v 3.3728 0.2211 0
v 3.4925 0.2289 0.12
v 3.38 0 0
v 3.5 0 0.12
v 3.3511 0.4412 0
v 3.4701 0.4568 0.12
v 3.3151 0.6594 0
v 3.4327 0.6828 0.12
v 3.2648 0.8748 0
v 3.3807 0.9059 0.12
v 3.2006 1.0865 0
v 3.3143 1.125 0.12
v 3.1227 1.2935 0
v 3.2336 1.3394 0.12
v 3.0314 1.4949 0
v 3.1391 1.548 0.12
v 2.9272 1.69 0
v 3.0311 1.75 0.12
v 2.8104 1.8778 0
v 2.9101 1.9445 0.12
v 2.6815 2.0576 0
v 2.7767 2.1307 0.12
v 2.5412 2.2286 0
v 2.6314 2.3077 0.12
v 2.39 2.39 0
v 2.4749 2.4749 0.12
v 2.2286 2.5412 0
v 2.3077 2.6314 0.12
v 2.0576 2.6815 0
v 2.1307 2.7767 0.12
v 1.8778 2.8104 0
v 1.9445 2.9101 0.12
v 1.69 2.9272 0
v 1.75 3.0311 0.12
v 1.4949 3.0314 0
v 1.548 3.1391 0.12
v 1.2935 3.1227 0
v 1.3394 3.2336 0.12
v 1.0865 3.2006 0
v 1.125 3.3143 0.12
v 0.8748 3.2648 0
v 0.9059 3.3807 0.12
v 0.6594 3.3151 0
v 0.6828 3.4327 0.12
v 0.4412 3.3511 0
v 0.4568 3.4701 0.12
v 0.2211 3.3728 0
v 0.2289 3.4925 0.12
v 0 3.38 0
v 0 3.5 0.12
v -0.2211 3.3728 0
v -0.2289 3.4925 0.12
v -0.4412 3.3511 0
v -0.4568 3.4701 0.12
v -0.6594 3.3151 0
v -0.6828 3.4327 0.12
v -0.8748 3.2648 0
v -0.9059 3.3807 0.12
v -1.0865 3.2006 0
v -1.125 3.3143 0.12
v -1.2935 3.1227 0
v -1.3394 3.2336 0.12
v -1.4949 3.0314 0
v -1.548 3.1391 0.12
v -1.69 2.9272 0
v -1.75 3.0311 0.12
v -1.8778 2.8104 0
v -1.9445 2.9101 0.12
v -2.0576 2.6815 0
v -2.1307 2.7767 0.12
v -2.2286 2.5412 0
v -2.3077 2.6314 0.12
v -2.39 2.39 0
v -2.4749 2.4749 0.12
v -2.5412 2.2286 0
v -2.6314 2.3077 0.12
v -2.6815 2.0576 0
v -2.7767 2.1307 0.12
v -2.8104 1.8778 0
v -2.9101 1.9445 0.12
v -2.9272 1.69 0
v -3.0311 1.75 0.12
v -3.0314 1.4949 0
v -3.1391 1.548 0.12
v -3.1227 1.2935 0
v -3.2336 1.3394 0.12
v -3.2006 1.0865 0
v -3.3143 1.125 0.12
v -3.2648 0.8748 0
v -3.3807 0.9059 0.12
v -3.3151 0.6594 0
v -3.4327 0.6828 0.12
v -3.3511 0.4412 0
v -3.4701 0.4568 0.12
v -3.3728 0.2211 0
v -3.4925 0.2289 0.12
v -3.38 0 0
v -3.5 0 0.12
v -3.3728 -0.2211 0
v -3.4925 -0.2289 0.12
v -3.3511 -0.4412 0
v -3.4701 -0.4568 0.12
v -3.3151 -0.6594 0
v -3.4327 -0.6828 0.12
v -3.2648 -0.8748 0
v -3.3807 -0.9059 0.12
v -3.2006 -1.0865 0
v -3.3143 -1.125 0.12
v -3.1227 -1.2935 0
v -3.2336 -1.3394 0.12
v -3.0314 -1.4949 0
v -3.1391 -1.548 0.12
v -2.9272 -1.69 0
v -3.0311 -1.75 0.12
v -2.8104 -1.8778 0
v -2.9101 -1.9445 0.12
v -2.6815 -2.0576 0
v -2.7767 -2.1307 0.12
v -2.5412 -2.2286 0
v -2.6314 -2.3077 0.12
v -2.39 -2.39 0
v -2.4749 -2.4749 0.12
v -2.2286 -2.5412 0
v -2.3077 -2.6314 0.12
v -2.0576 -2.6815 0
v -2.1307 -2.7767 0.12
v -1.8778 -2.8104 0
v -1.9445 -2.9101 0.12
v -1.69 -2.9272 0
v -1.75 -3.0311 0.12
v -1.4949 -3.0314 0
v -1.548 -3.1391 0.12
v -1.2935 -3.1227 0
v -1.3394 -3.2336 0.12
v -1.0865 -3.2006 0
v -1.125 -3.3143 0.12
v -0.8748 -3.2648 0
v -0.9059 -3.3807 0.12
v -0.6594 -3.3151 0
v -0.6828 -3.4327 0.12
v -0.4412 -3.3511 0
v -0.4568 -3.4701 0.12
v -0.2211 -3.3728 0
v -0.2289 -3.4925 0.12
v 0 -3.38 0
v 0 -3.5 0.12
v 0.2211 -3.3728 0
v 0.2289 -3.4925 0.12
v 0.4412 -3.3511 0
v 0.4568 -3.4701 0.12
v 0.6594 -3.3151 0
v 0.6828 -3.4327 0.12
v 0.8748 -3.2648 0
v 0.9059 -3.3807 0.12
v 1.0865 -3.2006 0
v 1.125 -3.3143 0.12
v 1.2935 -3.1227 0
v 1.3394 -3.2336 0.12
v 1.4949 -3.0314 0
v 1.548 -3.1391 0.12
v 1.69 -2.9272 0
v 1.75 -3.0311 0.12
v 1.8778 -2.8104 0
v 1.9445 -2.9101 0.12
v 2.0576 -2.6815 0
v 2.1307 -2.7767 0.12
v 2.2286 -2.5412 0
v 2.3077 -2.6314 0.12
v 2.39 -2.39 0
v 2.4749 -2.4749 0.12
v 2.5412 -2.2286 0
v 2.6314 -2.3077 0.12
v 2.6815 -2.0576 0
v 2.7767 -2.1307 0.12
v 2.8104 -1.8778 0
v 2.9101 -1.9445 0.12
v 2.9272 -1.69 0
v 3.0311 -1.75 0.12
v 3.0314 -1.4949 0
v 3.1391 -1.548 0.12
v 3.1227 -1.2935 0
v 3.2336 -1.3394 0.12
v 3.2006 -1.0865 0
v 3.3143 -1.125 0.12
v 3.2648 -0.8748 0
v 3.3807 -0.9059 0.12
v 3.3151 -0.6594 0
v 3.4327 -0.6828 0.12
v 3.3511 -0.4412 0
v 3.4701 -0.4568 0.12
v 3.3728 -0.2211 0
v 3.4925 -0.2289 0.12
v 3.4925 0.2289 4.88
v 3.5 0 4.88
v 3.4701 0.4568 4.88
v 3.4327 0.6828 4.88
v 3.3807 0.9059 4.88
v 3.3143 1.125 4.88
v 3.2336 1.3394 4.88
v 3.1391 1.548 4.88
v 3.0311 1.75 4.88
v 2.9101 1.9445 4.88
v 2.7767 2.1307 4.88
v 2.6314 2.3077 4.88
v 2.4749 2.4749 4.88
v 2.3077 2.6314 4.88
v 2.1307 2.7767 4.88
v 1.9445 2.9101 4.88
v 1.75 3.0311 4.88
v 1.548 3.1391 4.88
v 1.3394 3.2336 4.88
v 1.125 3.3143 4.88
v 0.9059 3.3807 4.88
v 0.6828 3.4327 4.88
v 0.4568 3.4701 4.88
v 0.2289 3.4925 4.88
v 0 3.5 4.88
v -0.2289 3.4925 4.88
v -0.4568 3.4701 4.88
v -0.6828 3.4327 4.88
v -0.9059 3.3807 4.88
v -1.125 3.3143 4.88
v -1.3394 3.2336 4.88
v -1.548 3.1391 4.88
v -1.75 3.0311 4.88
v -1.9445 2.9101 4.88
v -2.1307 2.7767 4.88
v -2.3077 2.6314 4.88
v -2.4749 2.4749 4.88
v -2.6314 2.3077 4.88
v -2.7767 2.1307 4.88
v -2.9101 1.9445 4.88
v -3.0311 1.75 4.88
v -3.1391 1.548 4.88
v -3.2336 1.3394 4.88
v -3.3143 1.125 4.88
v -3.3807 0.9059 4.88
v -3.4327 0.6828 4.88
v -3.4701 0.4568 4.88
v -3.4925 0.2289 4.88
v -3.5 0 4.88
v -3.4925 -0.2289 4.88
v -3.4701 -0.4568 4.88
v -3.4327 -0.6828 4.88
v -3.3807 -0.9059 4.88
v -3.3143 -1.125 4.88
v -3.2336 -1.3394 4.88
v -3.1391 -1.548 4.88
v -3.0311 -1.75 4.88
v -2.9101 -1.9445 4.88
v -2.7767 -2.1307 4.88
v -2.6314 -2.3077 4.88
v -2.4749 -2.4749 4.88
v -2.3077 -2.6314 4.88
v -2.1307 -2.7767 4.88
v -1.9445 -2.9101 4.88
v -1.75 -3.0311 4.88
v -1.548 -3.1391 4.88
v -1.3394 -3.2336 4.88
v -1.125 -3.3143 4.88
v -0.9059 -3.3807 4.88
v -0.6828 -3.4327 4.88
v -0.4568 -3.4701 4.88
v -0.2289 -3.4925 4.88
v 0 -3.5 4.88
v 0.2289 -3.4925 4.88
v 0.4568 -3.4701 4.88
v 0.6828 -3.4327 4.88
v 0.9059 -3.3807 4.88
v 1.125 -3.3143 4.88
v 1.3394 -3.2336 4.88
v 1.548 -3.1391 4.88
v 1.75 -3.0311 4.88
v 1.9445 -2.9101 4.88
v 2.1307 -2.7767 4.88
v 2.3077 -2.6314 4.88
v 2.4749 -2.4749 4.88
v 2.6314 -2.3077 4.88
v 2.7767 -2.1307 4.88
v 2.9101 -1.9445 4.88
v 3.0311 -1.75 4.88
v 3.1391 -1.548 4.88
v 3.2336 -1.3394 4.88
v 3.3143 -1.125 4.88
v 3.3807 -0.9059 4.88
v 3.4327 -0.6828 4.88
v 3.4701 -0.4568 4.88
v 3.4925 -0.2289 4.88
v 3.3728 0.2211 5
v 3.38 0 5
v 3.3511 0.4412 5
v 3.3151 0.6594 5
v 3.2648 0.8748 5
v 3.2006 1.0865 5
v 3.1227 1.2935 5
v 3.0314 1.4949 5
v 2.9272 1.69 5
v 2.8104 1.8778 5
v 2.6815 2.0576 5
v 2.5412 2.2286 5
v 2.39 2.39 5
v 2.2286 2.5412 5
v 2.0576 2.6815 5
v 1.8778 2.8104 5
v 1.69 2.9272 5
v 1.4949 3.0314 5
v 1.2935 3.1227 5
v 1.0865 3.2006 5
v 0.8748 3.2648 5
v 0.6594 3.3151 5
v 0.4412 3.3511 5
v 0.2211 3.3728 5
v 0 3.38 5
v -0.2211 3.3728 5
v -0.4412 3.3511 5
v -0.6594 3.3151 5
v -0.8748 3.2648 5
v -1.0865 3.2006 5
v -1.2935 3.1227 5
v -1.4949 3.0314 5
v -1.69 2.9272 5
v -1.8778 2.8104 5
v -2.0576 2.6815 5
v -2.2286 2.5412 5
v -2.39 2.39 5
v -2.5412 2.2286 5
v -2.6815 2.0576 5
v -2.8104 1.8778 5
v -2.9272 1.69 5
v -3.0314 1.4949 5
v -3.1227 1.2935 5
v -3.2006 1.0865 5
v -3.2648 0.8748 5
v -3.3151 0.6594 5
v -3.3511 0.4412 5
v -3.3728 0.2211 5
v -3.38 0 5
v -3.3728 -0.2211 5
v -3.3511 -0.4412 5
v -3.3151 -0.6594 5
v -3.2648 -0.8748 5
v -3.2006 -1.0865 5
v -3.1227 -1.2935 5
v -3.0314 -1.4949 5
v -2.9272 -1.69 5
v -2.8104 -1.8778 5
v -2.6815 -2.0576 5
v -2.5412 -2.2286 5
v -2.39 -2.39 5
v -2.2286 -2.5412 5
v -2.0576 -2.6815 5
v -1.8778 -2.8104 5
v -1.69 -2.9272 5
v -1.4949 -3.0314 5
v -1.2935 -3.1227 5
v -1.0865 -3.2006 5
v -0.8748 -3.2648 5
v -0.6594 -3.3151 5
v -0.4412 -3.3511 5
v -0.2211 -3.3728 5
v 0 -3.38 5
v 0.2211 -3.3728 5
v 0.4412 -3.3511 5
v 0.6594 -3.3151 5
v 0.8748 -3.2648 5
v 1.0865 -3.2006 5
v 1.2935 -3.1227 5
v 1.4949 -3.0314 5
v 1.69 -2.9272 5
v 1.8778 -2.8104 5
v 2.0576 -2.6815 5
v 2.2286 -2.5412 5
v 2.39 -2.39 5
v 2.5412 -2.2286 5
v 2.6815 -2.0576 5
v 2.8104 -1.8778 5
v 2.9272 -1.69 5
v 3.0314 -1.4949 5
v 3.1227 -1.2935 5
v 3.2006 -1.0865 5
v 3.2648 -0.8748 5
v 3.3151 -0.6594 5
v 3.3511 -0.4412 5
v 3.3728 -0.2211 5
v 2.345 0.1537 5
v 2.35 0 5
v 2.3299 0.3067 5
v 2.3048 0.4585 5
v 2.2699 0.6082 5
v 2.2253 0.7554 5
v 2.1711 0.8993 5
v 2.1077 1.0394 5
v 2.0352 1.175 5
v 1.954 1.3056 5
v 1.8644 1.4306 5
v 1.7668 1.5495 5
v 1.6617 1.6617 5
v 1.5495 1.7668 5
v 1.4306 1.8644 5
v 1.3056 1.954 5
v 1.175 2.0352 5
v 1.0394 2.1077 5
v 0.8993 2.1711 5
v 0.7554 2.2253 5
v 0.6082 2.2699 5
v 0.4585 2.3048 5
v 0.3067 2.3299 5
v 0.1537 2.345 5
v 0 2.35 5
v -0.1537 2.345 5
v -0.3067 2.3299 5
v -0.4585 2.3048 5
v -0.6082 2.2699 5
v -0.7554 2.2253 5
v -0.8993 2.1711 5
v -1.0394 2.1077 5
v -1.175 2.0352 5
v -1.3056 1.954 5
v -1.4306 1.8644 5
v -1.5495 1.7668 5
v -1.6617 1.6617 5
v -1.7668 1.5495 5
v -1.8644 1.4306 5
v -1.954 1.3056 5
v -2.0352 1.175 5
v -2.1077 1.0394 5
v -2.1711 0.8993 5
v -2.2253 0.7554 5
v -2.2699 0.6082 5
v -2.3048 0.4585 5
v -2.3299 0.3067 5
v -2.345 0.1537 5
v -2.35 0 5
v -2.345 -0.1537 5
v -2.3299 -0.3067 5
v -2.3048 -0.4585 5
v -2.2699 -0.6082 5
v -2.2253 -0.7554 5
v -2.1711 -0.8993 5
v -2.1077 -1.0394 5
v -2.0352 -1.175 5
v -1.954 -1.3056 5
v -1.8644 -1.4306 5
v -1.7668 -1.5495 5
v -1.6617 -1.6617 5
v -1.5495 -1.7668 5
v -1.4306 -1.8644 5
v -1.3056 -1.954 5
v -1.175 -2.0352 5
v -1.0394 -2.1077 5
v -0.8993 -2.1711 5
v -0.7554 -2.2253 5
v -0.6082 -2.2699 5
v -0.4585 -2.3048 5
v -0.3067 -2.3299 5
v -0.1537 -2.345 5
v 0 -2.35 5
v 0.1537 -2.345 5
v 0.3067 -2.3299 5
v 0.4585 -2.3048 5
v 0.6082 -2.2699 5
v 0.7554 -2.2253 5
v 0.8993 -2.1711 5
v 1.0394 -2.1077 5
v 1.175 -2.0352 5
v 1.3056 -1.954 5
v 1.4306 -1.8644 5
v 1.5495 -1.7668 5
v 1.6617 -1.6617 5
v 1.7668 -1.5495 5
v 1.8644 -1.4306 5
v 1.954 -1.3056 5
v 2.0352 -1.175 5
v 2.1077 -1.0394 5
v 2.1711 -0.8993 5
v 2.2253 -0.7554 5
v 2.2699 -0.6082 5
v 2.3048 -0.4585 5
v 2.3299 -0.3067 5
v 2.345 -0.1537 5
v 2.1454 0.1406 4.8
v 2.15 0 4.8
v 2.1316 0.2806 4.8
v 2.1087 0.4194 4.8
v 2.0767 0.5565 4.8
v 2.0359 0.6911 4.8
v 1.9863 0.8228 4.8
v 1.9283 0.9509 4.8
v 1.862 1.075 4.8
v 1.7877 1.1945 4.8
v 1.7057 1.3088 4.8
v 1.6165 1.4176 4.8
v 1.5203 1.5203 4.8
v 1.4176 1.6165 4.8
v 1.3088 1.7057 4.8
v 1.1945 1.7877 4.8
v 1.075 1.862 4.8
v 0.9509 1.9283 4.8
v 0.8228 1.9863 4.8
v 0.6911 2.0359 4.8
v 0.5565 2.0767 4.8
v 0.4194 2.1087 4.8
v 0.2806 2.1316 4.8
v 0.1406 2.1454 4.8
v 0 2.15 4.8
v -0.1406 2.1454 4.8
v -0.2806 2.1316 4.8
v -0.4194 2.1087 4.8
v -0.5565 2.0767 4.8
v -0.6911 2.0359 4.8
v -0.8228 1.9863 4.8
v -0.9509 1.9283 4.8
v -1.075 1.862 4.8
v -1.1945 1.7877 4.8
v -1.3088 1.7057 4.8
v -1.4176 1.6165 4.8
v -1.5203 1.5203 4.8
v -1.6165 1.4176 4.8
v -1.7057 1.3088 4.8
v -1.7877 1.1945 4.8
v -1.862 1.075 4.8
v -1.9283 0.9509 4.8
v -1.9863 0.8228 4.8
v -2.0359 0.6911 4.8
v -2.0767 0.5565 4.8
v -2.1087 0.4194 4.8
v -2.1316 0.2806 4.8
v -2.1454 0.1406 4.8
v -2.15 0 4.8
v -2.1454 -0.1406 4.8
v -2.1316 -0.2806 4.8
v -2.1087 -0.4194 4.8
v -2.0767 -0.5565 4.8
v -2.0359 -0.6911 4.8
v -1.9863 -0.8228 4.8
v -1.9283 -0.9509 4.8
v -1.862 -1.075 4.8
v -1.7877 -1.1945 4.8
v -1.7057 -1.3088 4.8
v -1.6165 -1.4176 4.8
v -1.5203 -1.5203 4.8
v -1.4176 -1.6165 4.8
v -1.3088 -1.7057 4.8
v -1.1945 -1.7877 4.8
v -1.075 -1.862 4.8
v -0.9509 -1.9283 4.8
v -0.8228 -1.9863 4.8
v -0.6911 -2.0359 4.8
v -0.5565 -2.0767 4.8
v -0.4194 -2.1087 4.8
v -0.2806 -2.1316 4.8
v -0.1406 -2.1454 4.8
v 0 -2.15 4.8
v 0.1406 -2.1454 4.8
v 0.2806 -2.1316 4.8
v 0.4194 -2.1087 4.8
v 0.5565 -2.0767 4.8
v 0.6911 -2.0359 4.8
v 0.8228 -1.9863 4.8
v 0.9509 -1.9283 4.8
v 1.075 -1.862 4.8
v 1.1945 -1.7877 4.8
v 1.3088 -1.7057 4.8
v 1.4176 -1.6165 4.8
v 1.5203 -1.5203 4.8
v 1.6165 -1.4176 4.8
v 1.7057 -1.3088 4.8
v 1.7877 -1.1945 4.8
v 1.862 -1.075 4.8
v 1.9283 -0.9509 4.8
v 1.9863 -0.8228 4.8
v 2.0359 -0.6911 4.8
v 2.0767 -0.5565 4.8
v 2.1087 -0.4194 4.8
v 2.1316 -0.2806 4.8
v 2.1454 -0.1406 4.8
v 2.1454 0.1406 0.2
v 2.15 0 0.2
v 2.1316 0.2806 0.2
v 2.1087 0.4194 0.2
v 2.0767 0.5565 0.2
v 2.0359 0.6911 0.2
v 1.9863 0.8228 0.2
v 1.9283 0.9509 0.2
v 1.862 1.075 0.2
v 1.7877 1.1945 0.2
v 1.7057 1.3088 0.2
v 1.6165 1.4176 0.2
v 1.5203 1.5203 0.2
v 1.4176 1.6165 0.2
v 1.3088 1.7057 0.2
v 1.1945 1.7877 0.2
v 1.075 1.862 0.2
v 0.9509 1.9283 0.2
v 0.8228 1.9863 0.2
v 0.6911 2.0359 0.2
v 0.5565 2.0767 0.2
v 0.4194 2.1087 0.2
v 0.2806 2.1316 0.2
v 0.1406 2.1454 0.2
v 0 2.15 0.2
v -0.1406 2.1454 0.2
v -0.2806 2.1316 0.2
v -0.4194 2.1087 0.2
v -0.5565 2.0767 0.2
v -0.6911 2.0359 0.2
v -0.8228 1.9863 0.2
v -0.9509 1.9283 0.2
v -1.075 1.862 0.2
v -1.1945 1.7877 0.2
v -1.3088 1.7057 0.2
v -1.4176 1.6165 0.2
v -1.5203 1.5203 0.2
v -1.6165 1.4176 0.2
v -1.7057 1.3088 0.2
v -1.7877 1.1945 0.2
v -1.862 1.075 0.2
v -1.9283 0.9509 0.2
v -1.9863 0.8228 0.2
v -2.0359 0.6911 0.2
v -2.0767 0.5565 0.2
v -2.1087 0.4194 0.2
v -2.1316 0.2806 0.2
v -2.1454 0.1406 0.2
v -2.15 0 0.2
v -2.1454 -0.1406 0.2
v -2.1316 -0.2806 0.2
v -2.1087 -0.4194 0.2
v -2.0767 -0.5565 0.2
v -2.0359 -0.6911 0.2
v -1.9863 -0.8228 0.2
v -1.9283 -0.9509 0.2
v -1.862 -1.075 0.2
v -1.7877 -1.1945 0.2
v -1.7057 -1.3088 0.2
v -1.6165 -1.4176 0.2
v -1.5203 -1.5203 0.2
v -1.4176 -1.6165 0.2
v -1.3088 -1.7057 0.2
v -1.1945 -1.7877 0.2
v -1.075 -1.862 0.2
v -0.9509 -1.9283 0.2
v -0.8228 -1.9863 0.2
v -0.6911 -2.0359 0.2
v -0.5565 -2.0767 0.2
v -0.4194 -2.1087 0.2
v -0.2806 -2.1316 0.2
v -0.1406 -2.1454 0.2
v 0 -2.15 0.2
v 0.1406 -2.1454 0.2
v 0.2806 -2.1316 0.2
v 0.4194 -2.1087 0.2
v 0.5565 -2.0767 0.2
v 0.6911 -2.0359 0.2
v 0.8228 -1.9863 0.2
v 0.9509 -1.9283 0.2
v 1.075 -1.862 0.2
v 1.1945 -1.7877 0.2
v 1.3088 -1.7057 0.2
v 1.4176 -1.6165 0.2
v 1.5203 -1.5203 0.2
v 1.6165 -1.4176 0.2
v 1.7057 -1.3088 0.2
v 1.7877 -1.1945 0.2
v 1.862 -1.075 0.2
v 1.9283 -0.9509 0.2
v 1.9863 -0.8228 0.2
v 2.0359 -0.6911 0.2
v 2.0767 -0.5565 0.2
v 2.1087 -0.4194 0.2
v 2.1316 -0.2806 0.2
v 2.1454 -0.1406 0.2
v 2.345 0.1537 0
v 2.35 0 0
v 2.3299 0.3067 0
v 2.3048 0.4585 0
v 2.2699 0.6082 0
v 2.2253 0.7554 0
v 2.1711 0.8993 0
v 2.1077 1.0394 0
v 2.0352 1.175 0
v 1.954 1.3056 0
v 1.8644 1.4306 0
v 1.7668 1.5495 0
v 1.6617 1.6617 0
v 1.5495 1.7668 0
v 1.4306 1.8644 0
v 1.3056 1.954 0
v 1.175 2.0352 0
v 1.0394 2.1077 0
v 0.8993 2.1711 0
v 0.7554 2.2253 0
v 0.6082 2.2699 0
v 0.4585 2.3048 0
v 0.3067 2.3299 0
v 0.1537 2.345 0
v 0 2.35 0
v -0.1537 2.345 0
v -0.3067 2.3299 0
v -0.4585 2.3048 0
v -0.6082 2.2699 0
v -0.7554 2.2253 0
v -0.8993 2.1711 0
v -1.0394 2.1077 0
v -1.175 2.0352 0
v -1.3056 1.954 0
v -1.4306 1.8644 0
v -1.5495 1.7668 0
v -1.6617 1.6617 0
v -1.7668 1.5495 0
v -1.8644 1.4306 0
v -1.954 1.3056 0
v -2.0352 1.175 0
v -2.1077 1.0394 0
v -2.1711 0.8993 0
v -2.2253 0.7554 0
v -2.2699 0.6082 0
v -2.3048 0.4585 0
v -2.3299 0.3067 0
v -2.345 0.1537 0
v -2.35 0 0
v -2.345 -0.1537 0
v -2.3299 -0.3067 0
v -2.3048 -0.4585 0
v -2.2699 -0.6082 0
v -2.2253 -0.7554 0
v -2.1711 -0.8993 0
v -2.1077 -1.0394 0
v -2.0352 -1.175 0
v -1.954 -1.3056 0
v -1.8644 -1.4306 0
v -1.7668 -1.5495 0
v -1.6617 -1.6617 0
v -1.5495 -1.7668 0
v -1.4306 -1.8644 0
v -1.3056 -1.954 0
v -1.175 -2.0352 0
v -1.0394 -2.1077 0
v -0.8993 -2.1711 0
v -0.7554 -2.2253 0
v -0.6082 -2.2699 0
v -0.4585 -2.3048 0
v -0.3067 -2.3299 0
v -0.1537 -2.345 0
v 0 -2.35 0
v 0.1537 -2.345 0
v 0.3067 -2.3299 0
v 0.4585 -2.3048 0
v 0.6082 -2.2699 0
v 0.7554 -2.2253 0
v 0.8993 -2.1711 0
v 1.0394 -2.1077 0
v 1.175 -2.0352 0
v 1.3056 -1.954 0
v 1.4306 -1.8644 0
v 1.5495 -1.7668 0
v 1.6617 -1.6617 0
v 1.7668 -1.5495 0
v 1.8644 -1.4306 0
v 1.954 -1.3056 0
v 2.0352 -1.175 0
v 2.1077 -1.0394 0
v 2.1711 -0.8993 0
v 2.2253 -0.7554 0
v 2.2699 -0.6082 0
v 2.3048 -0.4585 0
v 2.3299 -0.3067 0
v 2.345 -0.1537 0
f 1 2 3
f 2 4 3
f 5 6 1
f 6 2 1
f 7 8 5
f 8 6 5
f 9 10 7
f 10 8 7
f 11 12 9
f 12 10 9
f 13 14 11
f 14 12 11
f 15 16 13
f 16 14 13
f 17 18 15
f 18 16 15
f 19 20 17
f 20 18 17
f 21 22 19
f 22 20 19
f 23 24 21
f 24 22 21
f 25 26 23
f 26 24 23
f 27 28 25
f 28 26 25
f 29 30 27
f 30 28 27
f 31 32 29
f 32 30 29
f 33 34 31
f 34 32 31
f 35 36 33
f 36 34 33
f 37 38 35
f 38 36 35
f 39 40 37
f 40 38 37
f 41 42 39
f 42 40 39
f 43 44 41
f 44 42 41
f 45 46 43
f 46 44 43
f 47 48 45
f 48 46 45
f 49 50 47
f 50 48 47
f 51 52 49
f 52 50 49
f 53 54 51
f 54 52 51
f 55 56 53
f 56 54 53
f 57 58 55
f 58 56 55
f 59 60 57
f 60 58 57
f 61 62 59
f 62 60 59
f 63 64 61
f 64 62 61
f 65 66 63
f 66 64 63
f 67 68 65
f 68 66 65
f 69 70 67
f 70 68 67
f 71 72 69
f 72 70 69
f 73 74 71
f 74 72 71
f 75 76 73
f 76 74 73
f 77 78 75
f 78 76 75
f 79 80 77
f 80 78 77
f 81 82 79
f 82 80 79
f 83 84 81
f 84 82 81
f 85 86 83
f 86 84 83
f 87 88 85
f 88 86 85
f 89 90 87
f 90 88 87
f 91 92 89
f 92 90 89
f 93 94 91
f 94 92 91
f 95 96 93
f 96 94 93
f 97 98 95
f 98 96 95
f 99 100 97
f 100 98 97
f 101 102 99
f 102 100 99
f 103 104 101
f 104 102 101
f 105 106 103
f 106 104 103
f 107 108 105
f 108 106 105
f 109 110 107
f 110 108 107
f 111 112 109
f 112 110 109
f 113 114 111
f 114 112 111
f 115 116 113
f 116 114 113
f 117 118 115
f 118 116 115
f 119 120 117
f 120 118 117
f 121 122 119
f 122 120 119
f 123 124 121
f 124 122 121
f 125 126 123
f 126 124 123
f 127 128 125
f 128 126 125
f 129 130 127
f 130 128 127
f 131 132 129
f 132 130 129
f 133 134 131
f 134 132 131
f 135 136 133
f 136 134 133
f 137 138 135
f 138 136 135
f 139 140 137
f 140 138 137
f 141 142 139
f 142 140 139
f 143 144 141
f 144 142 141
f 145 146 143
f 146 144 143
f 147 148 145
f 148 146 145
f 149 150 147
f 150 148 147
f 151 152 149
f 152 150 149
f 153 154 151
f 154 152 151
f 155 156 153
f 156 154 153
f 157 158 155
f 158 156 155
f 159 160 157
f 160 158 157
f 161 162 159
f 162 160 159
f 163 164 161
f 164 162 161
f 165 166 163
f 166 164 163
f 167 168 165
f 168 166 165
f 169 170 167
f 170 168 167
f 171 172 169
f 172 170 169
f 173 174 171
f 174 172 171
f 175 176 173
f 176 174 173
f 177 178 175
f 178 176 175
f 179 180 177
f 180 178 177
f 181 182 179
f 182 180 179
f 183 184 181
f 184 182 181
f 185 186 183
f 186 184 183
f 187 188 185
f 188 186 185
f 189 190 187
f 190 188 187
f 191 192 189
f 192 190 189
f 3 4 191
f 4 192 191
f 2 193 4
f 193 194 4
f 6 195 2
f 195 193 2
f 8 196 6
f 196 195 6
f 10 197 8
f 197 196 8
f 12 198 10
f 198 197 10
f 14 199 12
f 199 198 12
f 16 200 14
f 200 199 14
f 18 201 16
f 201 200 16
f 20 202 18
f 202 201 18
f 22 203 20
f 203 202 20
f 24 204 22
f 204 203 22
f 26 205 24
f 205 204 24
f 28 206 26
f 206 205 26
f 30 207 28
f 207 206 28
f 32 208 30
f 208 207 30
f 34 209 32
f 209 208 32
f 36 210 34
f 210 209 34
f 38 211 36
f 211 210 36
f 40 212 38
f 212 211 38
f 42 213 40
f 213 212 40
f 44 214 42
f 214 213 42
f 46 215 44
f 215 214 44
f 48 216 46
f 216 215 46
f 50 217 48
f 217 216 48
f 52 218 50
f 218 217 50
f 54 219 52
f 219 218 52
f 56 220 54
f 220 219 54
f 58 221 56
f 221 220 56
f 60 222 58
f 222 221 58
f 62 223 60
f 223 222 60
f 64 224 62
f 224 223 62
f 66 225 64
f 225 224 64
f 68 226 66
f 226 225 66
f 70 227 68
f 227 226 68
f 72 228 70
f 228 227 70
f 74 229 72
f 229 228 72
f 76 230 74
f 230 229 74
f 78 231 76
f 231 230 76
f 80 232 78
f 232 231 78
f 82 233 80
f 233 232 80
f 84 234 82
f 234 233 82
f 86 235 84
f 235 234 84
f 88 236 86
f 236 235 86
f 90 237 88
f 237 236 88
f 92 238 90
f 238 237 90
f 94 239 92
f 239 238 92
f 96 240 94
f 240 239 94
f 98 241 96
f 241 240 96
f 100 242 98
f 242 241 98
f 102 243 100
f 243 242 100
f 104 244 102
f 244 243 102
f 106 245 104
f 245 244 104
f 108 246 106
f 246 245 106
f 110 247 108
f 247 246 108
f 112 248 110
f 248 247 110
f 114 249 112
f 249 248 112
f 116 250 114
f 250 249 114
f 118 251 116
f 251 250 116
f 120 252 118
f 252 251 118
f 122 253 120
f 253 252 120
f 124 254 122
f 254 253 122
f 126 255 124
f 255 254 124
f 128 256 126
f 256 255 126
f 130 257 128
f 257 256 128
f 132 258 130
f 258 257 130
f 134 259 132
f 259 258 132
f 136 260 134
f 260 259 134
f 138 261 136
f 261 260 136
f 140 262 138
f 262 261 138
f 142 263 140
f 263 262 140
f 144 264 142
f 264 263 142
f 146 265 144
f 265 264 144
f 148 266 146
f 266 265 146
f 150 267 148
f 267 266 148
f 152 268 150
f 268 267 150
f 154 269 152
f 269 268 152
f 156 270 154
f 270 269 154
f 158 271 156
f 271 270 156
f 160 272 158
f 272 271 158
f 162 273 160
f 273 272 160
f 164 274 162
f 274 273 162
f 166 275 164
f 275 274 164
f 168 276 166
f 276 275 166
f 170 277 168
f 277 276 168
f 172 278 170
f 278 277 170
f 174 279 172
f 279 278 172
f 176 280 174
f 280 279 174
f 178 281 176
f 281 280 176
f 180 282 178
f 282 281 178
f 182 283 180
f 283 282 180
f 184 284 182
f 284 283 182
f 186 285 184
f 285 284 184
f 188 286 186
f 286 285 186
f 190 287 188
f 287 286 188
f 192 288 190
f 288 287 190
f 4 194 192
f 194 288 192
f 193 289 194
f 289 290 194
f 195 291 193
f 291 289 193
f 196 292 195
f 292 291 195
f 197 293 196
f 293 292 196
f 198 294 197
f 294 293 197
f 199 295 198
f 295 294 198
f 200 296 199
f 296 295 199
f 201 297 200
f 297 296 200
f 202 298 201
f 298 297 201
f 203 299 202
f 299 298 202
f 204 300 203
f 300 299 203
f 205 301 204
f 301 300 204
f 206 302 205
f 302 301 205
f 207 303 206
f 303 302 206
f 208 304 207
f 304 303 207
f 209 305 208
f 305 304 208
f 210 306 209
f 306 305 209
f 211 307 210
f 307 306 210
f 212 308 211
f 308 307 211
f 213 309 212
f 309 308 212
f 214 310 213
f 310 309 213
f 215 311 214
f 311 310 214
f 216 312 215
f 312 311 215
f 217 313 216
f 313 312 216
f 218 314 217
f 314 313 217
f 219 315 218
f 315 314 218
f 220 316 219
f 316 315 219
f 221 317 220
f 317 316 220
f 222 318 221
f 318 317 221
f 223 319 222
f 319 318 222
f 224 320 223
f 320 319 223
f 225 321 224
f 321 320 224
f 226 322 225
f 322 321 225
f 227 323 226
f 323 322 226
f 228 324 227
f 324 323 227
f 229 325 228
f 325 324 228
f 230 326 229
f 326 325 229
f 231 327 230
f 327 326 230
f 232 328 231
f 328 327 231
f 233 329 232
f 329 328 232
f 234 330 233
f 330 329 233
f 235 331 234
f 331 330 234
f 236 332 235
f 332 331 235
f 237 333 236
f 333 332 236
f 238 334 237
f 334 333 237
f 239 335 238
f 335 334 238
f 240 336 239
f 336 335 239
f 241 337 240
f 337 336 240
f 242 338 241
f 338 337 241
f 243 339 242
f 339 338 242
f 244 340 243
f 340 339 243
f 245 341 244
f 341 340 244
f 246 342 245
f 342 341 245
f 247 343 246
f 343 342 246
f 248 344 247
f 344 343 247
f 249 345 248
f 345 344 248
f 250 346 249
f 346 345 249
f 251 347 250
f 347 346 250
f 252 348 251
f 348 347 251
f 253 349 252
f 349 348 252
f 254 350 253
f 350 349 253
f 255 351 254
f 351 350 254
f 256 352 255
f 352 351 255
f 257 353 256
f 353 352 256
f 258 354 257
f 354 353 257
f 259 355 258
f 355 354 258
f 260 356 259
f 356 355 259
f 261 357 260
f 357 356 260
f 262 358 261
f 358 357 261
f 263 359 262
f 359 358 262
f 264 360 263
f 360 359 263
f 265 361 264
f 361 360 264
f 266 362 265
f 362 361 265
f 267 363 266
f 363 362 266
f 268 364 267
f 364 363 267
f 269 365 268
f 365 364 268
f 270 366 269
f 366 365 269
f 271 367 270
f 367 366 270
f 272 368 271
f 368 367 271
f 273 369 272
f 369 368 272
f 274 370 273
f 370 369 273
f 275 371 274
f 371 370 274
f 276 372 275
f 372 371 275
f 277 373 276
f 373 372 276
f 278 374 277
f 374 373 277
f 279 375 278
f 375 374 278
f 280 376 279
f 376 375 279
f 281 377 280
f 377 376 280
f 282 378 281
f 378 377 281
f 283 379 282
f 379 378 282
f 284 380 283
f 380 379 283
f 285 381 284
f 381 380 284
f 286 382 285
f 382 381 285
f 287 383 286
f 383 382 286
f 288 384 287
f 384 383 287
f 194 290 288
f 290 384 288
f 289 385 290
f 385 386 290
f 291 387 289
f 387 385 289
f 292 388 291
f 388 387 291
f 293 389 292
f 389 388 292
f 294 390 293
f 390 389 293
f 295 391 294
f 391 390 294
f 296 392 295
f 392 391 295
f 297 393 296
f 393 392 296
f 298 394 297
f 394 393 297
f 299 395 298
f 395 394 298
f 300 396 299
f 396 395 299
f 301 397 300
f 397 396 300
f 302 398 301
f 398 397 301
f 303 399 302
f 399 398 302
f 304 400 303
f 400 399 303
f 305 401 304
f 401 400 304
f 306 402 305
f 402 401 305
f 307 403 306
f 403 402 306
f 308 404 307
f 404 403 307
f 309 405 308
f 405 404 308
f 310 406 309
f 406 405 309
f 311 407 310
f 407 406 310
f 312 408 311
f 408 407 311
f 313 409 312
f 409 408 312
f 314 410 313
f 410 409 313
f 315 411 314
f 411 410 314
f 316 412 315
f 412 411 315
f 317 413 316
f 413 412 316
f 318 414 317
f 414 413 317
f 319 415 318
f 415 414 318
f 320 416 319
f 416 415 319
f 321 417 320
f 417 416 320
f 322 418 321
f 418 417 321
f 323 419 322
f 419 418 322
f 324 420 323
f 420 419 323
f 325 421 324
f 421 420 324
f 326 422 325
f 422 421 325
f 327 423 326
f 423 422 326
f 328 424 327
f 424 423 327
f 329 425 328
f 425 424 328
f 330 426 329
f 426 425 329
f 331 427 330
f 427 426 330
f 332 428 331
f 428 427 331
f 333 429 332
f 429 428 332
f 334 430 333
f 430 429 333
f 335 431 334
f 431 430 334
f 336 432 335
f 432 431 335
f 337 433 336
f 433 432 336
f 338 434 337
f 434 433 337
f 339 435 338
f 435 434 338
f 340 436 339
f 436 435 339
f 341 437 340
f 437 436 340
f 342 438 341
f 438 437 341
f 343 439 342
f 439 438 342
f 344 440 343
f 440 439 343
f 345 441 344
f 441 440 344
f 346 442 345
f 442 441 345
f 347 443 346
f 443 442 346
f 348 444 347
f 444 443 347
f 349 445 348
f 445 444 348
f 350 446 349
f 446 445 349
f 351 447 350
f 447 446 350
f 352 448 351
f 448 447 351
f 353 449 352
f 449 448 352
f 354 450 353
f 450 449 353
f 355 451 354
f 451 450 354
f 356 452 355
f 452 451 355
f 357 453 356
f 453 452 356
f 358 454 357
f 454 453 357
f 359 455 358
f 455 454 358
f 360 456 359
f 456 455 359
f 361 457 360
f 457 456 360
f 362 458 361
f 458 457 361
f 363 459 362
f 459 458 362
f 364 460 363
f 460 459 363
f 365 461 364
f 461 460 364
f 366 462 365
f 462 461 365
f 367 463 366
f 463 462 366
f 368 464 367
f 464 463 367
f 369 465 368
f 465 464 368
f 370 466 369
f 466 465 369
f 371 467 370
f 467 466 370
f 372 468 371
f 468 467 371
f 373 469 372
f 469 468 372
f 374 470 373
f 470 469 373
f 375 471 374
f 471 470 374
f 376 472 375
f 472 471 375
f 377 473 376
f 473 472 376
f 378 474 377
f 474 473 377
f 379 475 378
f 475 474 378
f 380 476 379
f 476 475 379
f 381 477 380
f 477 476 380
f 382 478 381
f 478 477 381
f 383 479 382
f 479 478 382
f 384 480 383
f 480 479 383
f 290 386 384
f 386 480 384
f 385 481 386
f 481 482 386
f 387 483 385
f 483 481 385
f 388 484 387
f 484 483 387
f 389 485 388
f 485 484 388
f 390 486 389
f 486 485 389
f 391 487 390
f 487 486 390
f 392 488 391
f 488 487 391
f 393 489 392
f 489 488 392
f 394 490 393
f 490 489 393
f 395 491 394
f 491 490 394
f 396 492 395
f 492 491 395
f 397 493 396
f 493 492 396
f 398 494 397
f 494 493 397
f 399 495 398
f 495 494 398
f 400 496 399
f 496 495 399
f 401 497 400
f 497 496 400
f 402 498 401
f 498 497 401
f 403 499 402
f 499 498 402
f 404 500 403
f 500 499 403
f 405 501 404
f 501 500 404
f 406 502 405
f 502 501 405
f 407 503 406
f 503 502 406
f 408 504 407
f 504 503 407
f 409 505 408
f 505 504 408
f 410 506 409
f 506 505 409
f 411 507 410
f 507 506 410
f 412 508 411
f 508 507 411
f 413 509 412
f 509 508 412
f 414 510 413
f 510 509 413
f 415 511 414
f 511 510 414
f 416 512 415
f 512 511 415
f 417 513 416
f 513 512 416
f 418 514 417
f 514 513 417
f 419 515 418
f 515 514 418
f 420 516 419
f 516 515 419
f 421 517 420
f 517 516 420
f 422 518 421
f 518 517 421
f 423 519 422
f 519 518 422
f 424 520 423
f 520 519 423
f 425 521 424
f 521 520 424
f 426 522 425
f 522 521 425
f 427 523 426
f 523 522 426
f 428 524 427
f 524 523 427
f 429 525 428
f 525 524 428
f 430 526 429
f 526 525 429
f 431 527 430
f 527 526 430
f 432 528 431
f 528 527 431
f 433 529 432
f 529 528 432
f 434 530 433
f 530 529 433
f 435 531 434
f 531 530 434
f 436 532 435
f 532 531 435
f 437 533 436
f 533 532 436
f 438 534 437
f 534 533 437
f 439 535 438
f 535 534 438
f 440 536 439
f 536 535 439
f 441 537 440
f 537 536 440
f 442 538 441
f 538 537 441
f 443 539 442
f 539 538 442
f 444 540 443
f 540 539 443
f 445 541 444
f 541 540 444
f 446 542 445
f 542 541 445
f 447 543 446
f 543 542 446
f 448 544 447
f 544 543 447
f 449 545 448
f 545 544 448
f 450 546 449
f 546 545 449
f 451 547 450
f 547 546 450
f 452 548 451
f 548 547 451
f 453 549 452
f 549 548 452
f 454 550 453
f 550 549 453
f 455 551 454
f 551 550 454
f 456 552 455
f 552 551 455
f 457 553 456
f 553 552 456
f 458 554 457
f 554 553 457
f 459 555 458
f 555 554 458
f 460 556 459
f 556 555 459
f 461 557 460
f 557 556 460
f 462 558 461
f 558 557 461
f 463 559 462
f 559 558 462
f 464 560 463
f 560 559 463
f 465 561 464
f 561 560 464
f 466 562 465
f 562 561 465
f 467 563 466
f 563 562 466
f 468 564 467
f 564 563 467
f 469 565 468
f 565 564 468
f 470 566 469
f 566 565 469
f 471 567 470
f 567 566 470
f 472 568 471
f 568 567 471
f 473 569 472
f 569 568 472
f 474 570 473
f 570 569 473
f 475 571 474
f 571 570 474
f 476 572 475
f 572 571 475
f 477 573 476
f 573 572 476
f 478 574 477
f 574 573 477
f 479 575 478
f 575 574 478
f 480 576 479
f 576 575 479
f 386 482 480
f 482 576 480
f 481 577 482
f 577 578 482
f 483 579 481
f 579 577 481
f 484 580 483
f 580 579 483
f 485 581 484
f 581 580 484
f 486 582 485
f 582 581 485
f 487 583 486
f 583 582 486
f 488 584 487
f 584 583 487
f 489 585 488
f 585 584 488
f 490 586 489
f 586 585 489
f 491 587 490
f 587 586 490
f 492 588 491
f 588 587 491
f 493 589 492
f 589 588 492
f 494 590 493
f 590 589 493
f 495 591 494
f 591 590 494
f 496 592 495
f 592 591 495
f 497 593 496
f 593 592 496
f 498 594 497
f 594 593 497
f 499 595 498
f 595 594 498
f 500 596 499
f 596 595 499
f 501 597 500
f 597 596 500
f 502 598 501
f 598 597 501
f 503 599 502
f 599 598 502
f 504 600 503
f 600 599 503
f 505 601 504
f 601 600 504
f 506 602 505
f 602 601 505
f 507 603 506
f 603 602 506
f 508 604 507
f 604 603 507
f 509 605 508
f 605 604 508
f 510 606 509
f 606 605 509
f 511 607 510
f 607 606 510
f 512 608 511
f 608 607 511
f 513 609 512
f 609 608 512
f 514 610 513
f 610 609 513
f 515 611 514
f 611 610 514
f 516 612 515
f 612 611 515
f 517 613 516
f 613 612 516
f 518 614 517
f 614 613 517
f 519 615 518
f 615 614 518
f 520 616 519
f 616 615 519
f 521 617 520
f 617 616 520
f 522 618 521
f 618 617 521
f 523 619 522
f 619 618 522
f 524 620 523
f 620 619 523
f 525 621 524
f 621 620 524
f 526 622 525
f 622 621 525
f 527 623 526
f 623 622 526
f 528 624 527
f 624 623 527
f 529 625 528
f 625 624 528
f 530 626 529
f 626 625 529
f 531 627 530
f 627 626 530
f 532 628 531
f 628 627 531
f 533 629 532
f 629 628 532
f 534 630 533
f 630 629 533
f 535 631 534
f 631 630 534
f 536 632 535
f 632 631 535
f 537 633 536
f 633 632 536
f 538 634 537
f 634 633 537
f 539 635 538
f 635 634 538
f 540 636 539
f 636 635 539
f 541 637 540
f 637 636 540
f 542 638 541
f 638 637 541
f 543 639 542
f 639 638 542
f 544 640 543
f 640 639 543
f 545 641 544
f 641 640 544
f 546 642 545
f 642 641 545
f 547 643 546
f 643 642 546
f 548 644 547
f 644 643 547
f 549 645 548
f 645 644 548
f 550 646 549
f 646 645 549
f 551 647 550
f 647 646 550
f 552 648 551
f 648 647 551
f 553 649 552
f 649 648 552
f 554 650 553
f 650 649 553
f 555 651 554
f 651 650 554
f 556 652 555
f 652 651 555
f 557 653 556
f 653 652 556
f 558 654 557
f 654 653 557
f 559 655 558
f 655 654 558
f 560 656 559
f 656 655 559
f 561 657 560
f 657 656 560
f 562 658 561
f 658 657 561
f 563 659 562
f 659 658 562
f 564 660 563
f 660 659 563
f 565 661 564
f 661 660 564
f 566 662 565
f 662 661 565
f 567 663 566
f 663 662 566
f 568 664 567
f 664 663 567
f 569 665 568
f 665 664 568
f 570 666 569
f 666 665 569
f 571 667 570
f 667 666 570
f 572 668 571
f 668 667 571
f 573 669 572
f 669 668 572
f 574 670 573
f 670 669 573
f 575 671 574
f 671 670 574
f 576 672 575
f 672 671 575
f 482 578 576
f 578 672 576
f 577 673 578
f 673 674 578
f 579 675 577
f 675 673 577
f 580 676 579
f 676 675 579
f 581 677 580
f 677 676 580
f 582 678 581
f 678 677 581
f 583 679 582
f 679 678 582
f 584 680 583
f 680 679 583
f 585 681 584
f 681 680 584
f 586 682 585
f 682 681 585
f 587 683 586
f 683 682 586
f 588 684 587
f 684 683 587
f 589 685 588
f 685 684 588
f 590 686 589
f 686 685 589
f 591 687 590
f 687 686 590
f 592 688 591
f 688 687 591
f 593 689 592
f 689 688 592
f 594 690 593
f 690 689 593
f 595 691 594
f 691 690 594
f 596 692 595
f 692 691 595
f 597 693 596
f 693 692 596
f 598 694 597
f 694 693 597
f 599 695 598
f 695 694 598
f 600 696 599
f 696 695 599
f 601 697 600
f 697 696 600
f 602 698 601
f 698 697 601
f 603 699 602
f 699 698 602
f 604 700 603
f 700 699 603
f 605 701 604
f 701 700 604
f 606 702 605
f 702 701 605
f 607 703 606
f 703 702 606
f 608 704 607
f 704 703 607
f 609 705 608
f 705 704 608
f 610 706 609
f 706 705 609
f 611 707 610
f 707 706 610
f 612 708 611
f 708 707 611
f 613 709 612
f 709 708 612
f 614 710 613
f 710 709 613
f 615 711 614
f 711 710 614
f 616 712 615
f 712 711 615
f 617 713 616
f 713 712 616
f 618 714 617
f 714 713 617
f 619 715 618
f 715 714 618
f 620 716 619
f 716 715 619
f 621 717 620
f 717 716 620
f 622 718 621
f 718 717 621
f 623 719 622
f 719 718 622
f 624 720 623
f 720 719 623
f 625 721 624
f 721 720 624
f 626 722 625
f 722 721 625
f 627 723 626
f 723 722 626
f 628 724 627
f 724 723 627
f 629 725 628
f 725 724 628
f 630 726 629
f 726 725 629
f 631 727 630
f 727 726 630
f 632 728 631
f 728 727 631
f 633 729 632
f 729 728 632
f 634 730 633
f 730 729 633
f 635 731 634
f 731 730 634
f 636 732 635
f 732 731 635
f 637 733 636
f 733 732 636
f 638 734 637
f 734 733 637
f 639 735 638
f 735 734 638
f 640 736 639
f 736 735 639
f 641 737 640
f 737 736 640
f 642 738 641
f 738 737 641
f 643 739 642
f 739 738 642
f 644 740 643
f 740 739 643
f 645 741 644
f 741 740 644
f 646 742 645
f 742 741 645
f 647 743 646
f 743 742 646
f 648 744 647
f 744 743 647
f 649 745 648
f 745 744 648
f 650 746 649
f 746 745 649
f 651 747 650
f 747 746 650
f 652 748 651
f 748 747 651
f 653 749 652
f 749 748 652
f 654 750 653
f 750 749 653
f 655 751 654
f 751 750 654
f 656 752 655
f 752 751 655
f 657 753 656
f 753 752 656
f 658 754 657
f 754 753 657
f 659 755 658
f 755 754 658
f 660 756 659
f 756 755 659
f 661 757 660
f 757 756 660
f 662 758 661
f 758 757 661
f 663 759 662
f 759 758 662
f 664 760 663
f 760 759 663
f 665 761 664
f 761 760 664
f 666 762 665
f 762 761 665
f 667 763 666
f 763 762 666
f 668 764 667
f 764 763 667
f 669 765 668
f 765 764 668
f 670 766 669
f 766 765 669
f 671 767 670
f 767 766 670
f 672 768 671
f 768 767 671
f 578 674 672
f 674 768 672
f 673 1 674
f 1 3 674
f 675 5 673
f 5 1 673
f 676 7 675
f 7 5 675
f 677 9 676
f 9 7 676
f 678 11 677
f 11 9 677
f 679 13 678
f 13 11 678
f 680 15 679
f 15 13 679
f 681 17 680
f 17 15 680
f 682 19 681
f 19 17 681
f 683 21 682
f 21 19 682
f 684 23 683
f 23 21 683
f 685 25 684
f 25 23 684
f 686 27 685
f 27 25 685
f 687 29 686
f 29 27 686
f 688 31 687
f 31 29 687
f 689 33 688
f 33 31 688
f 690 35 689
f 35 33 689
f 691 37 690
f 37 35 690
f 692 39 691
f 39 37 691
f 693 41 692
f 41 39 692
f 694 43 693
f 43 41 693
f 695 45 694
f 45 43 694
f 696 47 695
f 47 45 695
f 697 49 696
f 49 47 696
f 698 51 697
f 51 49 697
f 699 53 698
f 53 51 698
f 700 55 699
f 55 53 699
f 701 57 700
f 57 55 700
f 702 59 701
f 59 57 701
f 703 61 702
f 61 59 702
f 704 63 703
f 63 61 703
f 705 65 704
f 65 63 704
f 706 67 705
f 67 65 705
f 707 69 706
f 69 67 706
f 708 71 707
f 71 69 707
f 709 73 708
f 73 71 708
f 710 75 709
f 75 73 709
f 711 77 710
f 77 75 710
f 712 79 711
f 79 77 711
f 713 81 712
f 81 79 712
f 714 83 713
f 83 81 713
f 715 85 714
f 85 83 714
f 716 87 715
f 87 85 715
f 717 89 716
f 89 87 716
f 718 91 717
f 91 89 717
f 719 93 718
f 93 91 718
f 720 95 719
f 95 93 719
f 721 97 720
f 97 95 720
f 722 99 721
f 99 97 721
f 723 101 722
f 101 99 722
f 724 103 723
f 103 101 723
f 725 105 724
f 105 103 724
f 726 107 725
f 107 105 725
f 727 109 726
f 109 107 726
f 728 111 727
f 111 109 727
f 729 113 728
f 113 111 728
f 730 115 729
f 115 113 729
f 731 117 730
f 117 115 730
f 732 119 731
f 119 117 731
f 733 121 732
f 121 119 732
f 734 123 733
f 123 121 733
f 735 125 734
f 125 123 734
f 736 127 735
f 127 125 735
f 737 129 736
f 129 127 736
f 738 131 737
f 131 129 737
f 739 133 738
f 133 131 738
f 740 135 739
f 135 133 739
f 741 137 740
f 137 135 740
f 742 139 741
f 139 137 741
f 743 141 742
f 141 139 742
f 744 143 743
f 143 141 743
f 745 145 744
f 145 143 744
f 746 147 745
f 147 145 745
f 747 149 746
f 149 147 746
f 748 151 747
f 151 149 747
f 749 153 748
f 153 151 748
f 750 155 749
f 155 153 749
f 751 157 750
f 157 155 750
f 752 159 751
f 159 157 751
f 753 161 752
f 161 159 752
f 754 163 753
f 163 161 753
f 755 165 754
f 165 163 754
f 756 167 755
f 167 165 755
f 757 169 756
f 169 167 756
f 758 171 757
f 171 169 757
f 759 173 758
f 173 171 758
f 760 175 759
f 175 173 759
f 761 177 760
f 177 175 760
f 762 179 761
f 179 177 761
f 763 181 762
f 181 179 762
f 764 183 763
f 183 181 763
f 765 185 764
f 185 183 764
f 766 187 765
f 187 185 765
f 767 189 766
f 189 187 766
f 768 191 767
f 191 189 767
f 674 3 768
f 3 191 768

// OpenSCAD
// OOMP generic catalogue model; units: mm.
// Stud length is additional to body depth. Tapping depths are model assumptions.
variant = "full"; // [full, display]
family = "spacer";
connection_type = "plain";
depth_mm = 5;
stud_length_mm = 0;
tapped_depth_mm = 0;
bore_mm = 4.3;
outer_diameter_mm = 7;
across_flats_mm = 6;
thread_nominal_diameter_mm = 3;
thread_pitch_mm = 0.5;
edge_chamfer_mm = 0.12;
mouth_chamfer_mm = 0.2;
angular_segments = 96;
samples_per_pitch = 16;

// Boundary travels up the outside, then down any tapped/plain bore.
// Equal-height rings at shoulders form the annular shoulder faces.
n = angular_segments;
threaded = family == "standoff";
has_stud = connection_type == "stud_to_tapped" || connection_type == "stud_to_stud";
two_studs = connection_type == "stud_to_stud";
through = !threaded || connection_type == "tapped_to_tapped";
pitch = thread_pitch_mm;
diameter = threaded ? thread_nominal_diameter_mm : bore_mm;
minor = diameter - 5*sqrt(3)*pitch/8;
transition = mouth_chamfer_mm + (threaded ? 5*sqrt(3)*pitch/16 : 0);
tip_chamfer = mouth_chamfer_mm + 17*sqrt(3)*pitch/48;
function sorted(v) = len(v)<=1 ? v : let(p=v[0])
    concat(sorted([for(x=v) if(x<p-1e-8) x]), [p], sorted([for(x=v) if(x>p+1e-8) x]));
function reverse(v) = [for(i=[len(v)-1:-1:0]) v[i]];
function theta(i) = i*360/n;
function fract(x) = x-floor(x);
function phase_distance(i,z) = abs(fract(z/pitch-theta(i)/360+0.5)-0.5);
function thread_r(i,z) = minor/2 + min(5*sqrt(3)*pitch/16,
    max(0,(phase_distance(i,z)-0.125)*pitch*sqrt(3)));
function stud_r(i,z,tip) = min(diameter/2 - (variant=="full" ?
    min(17*sqrt(3)*pitch/48,max(0,(phase_distance(i,z)-0.0625)*pitch*sqrt(3))) : 0),
    diameter/2-tip_chamfer+abs(z-tip));
function body_r(i,z) = (threaded ? across_flats_mm/2/cos(theta(i)%60-30) : outer_diameter_mm/2)
    - max(0,edge_chamfer_mm-min(z,depth_mm-z));
function bore_r(i,z) = max(threaded ? (variant=="full" ? thread_r(i,z) : minor/2) : diameter/2,
    diameter/2+mouth_chamfer_mm-(through ? min(z,depth_mm-z) : depth_mm-z));
function stud_z(a,b,tip) = let(count=variant=="full" ? ceil(stud_length_mm/pitch*samples_per_pitch) : 1)
    sorted(concat([for(i=[0:count]) a+(b-a)*i/count], [tip==a ? tip+tip_chamfer : tip-tip_chamfer]));
body_z = sorted([0,edge_chamfer_mm,depth_mm-edge_chamfer_mm,depth_mm]);
low = through ? 0 : depth_mm-tapped_depth_mm;
count = threaded && variant=="full" ? ceil((depth_mm-low)/pitch*samples_per_pitch) : 1;
bore_z = two_studs ? [] : reverse(sorted(concat(
    [for(i=[0:count]) low+(depth_mm-low)*i/count],
    [depth_mm-mouth_chamfer_mm,depth_mm-transition],
    through ? [mouth_chamfer_mm,transition] : [])));
// Ring descriptors: [height, kind, tip]. Kind: 0 body, 1 stud, 2 bore.
rings = concat(
    has_stud ? [for(z=stud_z(-stud_length_mm,0,-stud_length_mm)) [z,1,-stud_length_mm]] : [],
    [for(z=body_z) [z,0,0]],
    two_studs ? [for(z=stud_z(depth_mm,depth_mm+stud_length_mm,depth_mm+stud_length_mm)) [z,1,depth_mm+stud_length_mm]] : [],
    [for(z=bore_z) [z,2,0]]);
function radius(i,ring) = ring[1]==0 ? body_r(i,ring[0]) :
    ring[1]==1 ? stud_r(i,ring[0],ring[2]) : bore_r(i,ring[0]);
points = concat([for(ring=rings) for(i=[0:n-1])
    [radius(i,ring)*cos(theta(i)),radius(i,ring)*sin(theta(i)),ring[0]]],
    through ? [] : [[0,0,rings[0][0]],[0,0,rings[len(rings)-1][0]]]);
center = len(rings)*n;
last = (len(rings)-1)*n;
// OpenSCAD winding is opposite to STL winding.
faces = concat(
    [for(j=[0:len(rings)-(through ? 1 : 2)]) for(i=[0:n-1]) each
        let(a=j*n+i,b=j*n+(i+1)%n,c=((j+1)%len(rings))*n+(i+1)%n,d=((j+1)%len(rings))*n+i)
        [[a,c,b],[a,d,c]]],
    through ? [] : [for(i=[0:n-1]) each let(k=(i+1)%n)
        [[center,i,k],[center+1,last+k,last+i]]]);
assert(family=="spacer" || family=="standoff");
assert(!threaded || connection_type=="tapped_to_tapped" || has_stud);
assert(depth_mm>0 && diameter>0 && pitch>0);
assert(variant=="full" || variant=="display");
assert(n>=24 && n%12==0 && samples_per_pitch>=8);
assert(mouth_chamfer_mm>0 && mouth_chamfer_mm<depth_mm/2);
assert(edge_chamfer_mm>=0 && edge_chamfer_mm<depth_mm/2);
assert(diameter+4*max(mouth_chamfer_mm,edge_chamfer_mm) < (threaded ? across_flats_mm : outer_diameter_mm));
assert(!has_stud || stud_length_mm>2*mouth_chamfer_mm);
assert(!through || !threaded || 2*transition<depth_mm);
assert(connection_type!="stud_to_tapped" || (tapped_depth_mm>transition && tapped_depth_mm<depth_mm));
color([0.86,0.85,0.81]) polyhedron(points=points,faces=faces,convexity=20);
